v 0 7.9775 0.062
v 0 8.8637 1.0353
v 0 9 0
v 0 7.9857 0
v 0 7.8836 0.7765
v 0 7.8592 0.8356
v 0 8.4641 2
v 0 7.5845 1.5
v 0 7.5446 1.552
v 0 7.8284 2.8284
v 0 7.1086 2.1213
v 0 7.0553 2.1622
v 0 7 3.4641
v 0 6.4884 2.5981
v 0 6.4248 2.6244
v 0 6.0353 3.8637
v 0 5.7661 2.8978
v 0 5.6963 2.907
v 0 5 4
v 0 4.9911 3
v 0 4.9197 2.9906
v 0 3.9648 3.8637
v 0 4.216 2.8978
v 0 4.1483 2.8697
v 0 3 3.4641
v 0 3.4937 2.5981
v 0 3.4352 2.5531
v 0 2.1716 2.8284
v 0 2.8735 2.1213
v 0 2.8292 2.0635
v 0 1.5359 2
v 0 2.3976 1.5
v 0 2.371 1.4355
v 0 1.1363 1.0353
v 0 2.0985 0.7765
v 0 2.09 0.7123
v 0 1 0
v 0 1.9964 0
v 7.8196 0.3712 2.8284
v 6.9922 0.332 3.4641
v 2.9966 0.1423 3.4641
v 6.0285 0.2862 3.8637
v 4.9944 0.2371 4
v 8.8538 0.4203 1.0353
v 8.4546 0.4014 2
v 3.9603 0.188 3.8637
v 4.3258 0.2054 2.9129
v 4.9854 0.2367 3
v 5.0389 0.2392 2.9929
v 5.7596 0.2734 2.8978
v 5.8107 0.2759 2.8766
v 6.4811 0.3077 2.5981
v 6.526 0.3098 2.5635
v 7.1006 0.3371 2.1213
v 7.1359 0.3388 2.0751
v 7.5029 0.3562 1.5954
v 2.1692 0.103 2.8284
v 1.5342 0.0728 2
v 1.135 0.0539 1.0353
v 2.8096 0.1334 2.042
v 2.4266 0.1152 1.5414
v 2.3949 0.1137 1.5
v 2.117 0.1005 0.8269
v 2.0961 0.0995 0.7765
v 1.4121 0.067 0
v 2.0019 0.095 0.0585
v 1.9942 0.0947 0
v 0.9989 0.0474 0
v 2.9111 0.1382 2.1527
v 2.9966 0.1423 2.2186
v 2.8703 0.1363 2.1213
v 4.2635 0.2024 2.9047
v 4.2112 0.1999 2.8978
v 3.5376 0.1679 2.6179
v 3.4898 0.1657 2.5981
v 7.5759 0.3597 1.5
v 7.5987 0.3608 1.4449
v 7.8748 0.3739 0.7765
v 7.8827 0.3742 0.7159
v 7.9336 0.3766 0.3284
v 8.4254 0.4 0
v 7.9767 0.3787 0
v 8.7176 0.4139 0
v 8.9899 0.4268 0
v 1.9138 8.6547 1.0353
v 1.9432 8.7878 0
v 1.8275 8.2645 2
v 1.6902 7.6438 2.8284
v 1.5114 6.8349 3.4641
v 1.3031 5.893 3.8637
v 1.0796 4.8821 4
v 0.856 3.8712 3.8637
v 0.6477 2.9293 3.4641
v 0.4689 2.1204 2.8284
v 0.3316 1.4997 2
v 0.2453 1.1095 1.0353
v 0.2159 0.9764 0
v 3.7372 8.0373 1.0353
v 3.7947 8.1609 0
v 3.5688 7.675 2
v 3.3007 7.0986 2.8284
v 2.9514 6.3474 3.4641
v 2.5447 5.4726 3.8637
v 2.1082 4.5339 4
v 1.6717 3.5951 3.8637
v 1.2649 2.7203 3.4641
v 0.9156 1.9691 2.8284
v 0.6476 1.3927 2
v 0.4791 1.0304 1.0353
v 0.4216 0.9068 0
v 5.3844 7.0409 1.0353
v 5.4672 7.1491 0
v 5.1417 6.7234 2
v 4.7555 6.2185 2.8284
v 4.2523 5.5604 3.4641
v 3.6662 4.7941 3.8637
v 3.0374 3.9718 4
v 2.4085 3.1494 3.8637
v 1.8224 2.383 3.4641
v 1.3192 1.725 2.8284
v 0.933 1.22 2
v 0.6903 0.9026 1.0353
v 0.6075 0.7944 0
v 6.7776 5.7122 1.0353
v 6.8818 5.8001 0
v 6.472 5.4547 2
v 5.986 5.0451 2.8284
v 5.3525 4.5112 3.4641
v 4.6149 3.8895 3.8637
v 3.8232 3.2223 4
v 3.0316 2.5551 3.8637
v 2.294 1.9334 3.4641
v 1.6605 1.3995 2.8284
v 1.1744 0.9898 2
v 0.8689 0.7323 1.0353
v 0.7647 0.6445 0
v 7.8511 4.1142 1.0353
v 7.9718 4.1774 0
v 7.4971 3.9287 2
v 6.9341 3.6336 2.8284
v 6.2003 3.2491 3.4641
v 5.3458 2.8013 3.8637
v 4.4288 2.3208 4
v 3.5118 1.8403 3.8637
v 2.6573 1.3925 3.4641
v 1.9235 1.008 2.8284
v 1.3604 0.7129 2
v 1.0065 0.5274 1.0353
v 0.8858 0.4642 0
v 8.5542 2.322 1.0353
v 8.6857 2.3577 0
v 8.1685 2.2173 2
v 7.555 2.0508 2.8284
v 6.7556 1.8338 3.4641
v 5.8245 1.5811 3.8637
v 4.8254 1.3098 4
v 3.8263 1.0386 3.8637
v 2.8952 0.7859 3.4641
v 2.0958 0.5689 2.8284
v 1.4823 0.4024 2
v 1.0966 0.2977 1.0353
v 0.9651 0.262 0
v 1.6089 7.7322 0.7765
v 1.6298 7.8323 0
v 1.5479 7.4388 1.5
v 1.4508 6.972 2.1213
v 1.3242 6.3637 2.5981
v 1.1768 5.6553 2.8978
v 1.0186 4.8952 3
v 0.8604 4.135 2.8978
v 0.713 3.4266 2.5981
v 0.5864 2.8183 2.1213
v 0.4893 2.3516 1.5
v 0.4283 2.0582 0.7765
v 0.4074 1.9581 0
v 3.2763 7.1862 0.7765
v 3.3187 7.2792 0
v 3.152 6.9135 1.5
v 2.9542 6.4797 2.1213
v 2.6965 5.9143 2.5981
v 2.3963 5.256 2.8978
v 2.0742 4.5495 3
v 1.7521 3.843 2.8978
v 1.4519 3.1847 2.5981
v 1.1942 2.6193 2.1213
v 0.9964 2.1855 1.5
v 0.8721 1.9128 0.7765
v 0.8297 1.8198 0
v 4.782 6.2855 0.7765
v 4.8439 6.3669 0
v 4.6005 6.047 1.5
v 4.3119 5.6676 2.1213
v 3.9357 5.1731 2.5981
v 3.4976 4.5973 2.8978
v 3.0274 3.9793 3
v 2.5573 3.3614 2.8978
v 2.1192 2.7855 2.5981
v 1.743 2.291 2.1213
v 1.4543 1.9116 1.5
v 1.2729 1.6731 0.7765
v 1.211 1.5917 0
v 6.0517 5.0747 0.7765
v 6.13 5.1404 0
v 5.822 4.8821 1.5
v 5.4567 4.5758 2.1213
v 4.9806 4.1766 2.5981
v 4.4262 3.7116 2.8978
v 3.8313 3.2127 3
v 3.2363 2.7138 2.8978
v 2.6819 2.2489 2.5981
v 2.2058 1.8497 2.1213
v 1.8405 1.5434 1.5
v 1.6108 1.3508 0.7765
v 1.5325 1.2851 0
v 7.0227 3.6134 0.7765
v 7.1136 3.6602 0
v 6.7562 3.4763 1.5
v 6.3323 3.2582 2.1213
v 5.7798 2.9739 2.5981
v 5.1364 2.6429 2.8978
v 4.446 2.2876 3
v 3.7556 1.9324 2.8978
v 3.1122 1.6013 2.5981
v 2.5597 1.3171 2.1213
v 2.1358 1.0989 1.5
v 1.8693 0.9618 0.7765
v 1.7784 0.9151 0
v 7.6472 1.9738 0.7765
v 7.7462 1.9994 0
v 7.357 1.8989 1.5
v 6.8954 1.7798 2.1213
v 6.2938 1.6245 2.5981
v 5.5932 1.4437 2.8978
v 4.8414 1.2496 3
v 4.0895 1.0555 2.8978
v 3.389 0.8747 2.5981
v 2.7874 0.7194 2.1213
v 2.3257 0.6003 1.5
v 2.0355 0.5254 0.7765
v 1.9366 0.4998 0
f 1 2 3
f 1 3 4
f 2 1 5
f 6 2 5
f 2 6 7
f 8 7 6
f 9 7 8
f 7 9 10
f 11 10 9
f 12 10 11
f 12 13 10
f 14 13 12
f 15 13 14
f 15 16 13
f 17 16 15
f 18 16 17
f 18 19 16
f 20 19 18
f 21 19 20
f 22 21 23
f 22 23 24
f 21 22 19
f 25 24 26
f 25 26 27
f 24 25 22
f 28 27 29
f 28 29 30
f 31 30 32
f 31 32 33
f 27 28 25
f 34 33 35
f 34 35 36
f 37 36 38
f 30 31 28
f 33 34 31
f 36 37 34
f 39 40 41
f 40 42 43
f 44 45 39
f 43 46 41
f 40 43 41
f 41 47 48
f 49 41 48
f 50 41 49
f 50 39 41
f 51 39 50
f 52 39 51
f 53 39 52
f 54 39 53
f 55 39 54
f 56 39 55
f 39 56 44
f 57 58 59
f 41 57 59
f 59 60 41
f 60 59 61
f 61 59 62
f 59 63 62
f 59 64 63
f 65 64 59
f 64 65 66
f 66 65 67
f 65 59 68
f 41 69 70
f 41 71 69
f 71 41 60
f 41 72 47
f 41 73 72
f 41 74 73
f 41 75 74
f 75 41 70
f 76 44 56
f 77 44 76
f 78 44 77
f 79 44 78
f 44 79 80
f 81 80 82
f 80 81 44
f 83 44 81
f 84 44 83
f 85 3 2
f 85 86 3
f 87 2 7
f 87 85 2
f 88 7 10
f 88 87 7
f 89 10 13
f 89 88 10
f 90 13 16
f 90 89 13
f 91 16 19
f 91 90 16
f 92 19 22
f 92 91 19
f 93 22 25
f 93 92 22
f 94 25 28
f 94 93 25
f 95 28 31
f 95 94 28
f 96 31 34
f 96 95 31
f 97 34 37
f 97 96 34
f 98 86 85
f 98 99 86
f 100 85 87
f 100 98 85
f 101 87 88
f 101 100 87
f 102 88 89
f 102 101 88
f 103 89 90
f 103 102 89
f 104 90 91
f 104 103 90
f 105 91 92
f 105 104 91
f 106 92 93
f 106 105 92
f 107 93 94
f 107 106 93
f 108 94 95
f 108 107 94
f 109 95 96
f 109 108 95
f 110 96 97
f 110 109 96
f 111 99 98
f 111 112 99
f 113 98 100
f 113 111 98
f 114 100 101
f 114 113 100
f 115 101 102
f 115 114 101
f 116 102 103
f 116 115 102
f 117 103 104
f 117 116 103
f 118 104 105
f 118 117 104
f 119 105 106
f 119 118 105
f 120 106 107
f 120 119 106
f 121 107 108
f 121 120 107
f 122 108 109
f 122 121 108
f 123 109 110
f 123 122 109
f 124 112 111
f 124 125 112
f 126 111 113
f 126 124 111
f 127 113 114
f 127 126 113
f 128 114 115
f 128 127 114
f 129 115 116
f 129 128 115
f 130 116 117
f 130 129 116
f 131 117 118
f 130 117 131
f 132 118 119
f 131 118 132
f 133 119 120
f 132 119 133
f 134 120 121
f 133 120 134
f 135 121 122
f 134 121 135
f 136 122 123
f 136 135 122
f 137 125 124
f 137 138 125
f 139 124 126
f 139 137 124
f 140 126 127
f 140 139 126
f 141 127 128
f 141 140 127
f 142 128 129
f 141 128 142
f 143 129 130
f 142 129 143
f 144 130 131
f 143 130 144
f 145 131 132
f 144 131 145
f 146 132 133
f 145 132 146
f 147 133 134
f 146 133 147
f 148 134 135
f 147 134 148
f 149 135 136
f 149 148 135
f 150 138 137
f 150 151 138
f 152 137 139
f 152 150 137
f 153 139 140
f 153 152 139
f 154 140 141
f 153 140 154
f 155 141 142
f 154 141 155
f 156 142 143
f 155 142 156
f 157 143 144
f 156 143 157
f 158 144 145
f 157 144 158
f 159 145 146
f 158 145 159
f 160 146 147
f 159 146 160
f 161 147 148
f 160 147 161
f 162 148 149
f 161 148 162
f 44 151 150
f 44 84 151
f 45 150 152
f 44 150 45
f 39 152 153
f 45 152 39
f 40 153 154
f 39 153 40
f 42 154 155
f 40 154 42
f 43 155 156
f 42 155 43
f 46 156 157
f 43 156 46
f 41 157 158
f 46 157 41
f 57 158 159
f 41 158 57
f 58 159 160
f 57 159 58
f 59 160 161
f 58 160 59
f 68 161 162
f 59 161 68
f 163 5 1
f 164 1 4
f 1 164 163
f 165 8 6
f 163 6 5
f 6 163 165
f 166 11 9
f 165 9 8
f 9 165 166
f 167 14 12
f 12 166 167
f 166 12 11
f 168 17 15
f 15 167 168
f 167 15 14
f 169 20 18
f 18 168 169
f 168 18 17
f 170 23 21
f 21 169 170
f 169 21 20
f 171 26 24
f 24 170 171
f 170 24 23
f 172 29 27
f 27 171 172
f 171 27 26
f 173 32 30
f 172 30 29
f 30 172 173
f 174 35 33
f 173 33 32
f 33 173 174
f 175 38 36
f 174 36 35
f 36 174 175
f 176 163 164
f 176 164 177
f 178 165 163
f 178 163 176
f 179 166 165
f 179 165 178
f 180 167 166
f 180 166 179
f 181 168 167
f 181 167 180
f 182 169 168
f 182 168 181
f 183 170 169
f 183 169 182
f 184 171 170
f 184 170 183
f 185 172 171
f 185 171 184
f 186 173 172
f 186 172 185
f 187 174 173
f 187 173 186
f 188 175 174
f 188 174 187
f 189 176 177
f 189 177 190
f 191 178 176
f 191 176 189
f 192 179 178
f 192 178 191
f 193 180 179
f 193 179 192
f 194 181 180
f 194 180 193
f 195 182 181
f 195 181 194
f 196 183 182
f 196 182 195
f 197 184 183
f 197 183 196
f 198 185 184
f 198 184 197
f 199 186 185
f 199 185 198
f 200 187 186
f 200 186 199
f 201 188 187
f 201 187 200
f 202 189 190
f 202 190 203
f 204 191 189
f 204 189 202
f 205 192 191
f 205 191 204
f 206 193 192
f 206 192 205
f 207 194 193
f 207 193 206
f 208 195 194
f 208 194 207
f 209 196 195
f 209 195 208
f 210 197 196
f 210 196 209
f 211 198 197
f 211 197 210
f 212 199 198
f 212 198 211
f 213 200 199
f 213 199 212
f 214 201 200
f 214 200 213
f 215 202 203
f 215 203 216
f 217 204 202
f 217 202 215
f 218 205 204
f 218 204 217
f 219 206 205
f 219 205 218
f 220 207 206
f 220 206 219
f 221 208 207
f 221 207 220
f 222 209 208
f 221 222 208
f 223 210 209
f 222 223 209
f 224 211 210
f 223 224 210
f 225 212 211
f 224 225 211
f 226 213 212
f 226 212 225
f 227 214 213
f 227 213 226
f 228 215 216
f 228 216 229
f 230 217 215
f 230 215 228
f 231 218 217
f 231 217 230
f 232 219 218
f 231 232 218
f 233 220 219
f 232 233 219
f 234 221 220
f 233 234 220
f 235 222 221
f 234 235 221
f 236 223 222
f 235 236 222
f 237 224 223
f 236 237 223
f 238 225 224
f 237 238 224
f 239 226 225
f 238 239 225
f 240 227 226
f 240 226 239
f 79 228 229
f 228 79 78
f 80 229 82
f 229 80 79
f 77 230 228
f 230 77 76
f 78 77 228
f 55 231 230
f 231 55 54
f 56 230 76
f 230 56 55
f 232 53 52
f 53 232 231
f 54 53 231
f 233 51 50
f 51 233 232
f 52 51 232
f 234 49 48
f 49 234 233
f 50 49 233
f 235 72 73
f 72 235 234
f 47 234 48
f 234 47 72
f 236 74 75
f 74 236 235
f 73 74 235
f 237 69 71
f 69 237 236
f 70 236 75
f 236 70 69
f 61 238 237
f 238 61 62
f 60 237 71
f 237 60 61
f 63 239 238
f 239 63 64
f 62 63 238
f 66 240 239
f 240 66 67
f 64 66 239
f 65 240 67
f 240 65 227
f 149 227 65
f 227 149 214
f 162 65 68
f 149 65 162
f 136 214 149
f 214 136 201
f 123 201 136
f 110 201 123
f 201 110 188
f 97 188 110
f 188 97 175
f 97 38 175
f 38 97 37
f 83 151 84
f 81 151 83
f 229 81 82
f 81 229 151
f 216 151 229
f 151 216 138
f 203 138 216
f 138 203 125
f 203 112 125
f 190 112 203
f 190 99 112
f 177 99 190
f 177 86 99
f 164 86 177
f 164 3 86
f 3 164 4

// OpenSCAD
// file: ../build_environments.scad
// build_environments.scad: modules to build level sections
//

module pool(diameter=10.0, wall_height=2.0, step_width=3.0, connections=[])
{
    difference() {
        union() {
        difference() {
            cylinder(h=0.5,r1=diameter+step_width,r2=diameter+step_width,$fn=48);
            translate([0,0,-0.1])
                cylinder(h=0.7,r1=diameter,r2=diameter,$fn=48);
        }
        difference() {
            cylinder(h=wall_height,r1=diameter+step_width+1.0,r2=diameter+step_width+1.0,$fn=48);
            translate([0,0,-0.1])
                cylinder(h=wall_height+0.2,r1=diameter+step_width,r2=diameter+step_width,$fn=48);
        }
        }
    
        for (c = connections)
        {
            rotate([0,90,0]) {
                angle = atan2(c[1],c[0]);
                rotate([-angle,0,0]) {
                    cylinder(h=diameter+5.0,r1=c[2],r2=c[2],$fn=48);
                }
            }
        }
    }
}

module straight(length=10.0, width=2.0, dy1=0.0, dy2=0.0, dz=0.0)
{
    dims = [0, 0, 0, 0, 0, (dz/length)];
    matrix = [
        [ 1, dims[0], dims[1], 0 ],
        [ dims[2], 1, dims[4], 0 ],
        [ dims[5], dims[3], 1, 0 ],
        [ 0, 0, 0, 1 ]
    ];
    multmatrix(matrix)
    difference() {
        translate([dy1,0,0])
        union() {
            rotate([0,90,0]) {
                difference() {
                    cylinder(h=(length-dy1-dy2),r1=width+1.0,r2=width+1.0,$fn=24);
                    translate([0,0,-0.1])
                        cylinder(h=(length-dy1-dy2+0.2),r1=width,r2=width,$fn=24);
                }
                difference() {
                    cylinder(h=1.0,r1=width+2.0,r2=width+2.0,$fn=24);
                    translate([0,0,-0.1])
                        cylinder(h=1.2,r1=width,r2=width,$fn=24);
                }
                translate([0,0,(length-dy1-dy2)-1.0]) {
                    difference() {
                        cylinder(h=1.0,r1=width+2.0,r2=width+2.0,$fn=24);
                        translate([0,0,-0.1])
                            cylinder(h=1.2,r1=width,r2=width,$fn=24);
                    }
                }
            }
        }
        translate([0,0,-(2*width+4.0)/2])
            cube([3*length,3*length,2*width+4.0],center=true);
    }
}

module curve(p0=[0,0], center=[0,0], dir=1, angle=0.0, width=2.0)
{
    radius = sqrt((p0[0]-center[0])*(p0[0]-center[0]) + (p0[1]-center[1])*(p0[1]-center[1]));
    if (dir == 0) {
        difference() {
            rotate([0,0,-90])
            difference() {
                rotate_extrude(angle = angle, convexity = 10, $fn=32)
                    translate([radius, 0, 0])
                        circle(r = width+1.0,$fn=24);
                rotate([0,0,-1.0])
                    rotate_extrude(angle = angle+2.0, convexity = 10, $fn=32)
                        translate([radius, 0, 0])
                            circle(r = width,$fn=24);
            }
            translate([0,0,-(2*width+4.0)/2])
                cube([5*radius,5*radius,2*width+4.0],center=true);
        }
    }
    else {
        difference() {
            rotate([0,0,90])
            difference() {
                rotate_extrude(angle = -angle, convexity = 10, $fn=32)
                    translate([radius, 0, 0])
                        circle(r = width+1.0,$fn=24);
                rotate([0,0,1.0])
                    rotate_extrude(angle = -angle-2.0, convexity = 10, $fn=32)
                        translate([radius, 0, 0])
                            circle(r = width,$fn=24);
            }
            translate([0,0,-(2*width+4.0)/2])
                cube([5*radius,5*radius,2*width+4.0],center=true);
        }
    }

}

// test pool
//pool(diameter=12.0000, wall_height=3.0000, step_width=3.0000, connections=[[0.0000,-26.0000,2.0000], [23.6074,0.0000,2.0000]]);

// test straight, slope
//straight(length=26.0000, width=2.0000, dy1=11.8322, dy2=6.7082, dz=0.0000);
//straight(length=29.1549, width=12.0000, dy1=0.0000, dy2=0.0000, dz=-15.0000);

// test curve
//curve(p0=[23.6074, 0.0000], center=[23.6074, 5.0000], dir=0, angle=60.1011, width=2.0000);
//curve(p0=[33.6426, 12.4219], center=[37.9771, 9.9295], dir=1, angle=120.4627, width=2.0000);
// main file
use <../build_environments.scad>;
curve(p0=[9.1186, 34.6103], center=[7.3047, 29.9509], dir=1, angle=87.2819, width=3.0000);
